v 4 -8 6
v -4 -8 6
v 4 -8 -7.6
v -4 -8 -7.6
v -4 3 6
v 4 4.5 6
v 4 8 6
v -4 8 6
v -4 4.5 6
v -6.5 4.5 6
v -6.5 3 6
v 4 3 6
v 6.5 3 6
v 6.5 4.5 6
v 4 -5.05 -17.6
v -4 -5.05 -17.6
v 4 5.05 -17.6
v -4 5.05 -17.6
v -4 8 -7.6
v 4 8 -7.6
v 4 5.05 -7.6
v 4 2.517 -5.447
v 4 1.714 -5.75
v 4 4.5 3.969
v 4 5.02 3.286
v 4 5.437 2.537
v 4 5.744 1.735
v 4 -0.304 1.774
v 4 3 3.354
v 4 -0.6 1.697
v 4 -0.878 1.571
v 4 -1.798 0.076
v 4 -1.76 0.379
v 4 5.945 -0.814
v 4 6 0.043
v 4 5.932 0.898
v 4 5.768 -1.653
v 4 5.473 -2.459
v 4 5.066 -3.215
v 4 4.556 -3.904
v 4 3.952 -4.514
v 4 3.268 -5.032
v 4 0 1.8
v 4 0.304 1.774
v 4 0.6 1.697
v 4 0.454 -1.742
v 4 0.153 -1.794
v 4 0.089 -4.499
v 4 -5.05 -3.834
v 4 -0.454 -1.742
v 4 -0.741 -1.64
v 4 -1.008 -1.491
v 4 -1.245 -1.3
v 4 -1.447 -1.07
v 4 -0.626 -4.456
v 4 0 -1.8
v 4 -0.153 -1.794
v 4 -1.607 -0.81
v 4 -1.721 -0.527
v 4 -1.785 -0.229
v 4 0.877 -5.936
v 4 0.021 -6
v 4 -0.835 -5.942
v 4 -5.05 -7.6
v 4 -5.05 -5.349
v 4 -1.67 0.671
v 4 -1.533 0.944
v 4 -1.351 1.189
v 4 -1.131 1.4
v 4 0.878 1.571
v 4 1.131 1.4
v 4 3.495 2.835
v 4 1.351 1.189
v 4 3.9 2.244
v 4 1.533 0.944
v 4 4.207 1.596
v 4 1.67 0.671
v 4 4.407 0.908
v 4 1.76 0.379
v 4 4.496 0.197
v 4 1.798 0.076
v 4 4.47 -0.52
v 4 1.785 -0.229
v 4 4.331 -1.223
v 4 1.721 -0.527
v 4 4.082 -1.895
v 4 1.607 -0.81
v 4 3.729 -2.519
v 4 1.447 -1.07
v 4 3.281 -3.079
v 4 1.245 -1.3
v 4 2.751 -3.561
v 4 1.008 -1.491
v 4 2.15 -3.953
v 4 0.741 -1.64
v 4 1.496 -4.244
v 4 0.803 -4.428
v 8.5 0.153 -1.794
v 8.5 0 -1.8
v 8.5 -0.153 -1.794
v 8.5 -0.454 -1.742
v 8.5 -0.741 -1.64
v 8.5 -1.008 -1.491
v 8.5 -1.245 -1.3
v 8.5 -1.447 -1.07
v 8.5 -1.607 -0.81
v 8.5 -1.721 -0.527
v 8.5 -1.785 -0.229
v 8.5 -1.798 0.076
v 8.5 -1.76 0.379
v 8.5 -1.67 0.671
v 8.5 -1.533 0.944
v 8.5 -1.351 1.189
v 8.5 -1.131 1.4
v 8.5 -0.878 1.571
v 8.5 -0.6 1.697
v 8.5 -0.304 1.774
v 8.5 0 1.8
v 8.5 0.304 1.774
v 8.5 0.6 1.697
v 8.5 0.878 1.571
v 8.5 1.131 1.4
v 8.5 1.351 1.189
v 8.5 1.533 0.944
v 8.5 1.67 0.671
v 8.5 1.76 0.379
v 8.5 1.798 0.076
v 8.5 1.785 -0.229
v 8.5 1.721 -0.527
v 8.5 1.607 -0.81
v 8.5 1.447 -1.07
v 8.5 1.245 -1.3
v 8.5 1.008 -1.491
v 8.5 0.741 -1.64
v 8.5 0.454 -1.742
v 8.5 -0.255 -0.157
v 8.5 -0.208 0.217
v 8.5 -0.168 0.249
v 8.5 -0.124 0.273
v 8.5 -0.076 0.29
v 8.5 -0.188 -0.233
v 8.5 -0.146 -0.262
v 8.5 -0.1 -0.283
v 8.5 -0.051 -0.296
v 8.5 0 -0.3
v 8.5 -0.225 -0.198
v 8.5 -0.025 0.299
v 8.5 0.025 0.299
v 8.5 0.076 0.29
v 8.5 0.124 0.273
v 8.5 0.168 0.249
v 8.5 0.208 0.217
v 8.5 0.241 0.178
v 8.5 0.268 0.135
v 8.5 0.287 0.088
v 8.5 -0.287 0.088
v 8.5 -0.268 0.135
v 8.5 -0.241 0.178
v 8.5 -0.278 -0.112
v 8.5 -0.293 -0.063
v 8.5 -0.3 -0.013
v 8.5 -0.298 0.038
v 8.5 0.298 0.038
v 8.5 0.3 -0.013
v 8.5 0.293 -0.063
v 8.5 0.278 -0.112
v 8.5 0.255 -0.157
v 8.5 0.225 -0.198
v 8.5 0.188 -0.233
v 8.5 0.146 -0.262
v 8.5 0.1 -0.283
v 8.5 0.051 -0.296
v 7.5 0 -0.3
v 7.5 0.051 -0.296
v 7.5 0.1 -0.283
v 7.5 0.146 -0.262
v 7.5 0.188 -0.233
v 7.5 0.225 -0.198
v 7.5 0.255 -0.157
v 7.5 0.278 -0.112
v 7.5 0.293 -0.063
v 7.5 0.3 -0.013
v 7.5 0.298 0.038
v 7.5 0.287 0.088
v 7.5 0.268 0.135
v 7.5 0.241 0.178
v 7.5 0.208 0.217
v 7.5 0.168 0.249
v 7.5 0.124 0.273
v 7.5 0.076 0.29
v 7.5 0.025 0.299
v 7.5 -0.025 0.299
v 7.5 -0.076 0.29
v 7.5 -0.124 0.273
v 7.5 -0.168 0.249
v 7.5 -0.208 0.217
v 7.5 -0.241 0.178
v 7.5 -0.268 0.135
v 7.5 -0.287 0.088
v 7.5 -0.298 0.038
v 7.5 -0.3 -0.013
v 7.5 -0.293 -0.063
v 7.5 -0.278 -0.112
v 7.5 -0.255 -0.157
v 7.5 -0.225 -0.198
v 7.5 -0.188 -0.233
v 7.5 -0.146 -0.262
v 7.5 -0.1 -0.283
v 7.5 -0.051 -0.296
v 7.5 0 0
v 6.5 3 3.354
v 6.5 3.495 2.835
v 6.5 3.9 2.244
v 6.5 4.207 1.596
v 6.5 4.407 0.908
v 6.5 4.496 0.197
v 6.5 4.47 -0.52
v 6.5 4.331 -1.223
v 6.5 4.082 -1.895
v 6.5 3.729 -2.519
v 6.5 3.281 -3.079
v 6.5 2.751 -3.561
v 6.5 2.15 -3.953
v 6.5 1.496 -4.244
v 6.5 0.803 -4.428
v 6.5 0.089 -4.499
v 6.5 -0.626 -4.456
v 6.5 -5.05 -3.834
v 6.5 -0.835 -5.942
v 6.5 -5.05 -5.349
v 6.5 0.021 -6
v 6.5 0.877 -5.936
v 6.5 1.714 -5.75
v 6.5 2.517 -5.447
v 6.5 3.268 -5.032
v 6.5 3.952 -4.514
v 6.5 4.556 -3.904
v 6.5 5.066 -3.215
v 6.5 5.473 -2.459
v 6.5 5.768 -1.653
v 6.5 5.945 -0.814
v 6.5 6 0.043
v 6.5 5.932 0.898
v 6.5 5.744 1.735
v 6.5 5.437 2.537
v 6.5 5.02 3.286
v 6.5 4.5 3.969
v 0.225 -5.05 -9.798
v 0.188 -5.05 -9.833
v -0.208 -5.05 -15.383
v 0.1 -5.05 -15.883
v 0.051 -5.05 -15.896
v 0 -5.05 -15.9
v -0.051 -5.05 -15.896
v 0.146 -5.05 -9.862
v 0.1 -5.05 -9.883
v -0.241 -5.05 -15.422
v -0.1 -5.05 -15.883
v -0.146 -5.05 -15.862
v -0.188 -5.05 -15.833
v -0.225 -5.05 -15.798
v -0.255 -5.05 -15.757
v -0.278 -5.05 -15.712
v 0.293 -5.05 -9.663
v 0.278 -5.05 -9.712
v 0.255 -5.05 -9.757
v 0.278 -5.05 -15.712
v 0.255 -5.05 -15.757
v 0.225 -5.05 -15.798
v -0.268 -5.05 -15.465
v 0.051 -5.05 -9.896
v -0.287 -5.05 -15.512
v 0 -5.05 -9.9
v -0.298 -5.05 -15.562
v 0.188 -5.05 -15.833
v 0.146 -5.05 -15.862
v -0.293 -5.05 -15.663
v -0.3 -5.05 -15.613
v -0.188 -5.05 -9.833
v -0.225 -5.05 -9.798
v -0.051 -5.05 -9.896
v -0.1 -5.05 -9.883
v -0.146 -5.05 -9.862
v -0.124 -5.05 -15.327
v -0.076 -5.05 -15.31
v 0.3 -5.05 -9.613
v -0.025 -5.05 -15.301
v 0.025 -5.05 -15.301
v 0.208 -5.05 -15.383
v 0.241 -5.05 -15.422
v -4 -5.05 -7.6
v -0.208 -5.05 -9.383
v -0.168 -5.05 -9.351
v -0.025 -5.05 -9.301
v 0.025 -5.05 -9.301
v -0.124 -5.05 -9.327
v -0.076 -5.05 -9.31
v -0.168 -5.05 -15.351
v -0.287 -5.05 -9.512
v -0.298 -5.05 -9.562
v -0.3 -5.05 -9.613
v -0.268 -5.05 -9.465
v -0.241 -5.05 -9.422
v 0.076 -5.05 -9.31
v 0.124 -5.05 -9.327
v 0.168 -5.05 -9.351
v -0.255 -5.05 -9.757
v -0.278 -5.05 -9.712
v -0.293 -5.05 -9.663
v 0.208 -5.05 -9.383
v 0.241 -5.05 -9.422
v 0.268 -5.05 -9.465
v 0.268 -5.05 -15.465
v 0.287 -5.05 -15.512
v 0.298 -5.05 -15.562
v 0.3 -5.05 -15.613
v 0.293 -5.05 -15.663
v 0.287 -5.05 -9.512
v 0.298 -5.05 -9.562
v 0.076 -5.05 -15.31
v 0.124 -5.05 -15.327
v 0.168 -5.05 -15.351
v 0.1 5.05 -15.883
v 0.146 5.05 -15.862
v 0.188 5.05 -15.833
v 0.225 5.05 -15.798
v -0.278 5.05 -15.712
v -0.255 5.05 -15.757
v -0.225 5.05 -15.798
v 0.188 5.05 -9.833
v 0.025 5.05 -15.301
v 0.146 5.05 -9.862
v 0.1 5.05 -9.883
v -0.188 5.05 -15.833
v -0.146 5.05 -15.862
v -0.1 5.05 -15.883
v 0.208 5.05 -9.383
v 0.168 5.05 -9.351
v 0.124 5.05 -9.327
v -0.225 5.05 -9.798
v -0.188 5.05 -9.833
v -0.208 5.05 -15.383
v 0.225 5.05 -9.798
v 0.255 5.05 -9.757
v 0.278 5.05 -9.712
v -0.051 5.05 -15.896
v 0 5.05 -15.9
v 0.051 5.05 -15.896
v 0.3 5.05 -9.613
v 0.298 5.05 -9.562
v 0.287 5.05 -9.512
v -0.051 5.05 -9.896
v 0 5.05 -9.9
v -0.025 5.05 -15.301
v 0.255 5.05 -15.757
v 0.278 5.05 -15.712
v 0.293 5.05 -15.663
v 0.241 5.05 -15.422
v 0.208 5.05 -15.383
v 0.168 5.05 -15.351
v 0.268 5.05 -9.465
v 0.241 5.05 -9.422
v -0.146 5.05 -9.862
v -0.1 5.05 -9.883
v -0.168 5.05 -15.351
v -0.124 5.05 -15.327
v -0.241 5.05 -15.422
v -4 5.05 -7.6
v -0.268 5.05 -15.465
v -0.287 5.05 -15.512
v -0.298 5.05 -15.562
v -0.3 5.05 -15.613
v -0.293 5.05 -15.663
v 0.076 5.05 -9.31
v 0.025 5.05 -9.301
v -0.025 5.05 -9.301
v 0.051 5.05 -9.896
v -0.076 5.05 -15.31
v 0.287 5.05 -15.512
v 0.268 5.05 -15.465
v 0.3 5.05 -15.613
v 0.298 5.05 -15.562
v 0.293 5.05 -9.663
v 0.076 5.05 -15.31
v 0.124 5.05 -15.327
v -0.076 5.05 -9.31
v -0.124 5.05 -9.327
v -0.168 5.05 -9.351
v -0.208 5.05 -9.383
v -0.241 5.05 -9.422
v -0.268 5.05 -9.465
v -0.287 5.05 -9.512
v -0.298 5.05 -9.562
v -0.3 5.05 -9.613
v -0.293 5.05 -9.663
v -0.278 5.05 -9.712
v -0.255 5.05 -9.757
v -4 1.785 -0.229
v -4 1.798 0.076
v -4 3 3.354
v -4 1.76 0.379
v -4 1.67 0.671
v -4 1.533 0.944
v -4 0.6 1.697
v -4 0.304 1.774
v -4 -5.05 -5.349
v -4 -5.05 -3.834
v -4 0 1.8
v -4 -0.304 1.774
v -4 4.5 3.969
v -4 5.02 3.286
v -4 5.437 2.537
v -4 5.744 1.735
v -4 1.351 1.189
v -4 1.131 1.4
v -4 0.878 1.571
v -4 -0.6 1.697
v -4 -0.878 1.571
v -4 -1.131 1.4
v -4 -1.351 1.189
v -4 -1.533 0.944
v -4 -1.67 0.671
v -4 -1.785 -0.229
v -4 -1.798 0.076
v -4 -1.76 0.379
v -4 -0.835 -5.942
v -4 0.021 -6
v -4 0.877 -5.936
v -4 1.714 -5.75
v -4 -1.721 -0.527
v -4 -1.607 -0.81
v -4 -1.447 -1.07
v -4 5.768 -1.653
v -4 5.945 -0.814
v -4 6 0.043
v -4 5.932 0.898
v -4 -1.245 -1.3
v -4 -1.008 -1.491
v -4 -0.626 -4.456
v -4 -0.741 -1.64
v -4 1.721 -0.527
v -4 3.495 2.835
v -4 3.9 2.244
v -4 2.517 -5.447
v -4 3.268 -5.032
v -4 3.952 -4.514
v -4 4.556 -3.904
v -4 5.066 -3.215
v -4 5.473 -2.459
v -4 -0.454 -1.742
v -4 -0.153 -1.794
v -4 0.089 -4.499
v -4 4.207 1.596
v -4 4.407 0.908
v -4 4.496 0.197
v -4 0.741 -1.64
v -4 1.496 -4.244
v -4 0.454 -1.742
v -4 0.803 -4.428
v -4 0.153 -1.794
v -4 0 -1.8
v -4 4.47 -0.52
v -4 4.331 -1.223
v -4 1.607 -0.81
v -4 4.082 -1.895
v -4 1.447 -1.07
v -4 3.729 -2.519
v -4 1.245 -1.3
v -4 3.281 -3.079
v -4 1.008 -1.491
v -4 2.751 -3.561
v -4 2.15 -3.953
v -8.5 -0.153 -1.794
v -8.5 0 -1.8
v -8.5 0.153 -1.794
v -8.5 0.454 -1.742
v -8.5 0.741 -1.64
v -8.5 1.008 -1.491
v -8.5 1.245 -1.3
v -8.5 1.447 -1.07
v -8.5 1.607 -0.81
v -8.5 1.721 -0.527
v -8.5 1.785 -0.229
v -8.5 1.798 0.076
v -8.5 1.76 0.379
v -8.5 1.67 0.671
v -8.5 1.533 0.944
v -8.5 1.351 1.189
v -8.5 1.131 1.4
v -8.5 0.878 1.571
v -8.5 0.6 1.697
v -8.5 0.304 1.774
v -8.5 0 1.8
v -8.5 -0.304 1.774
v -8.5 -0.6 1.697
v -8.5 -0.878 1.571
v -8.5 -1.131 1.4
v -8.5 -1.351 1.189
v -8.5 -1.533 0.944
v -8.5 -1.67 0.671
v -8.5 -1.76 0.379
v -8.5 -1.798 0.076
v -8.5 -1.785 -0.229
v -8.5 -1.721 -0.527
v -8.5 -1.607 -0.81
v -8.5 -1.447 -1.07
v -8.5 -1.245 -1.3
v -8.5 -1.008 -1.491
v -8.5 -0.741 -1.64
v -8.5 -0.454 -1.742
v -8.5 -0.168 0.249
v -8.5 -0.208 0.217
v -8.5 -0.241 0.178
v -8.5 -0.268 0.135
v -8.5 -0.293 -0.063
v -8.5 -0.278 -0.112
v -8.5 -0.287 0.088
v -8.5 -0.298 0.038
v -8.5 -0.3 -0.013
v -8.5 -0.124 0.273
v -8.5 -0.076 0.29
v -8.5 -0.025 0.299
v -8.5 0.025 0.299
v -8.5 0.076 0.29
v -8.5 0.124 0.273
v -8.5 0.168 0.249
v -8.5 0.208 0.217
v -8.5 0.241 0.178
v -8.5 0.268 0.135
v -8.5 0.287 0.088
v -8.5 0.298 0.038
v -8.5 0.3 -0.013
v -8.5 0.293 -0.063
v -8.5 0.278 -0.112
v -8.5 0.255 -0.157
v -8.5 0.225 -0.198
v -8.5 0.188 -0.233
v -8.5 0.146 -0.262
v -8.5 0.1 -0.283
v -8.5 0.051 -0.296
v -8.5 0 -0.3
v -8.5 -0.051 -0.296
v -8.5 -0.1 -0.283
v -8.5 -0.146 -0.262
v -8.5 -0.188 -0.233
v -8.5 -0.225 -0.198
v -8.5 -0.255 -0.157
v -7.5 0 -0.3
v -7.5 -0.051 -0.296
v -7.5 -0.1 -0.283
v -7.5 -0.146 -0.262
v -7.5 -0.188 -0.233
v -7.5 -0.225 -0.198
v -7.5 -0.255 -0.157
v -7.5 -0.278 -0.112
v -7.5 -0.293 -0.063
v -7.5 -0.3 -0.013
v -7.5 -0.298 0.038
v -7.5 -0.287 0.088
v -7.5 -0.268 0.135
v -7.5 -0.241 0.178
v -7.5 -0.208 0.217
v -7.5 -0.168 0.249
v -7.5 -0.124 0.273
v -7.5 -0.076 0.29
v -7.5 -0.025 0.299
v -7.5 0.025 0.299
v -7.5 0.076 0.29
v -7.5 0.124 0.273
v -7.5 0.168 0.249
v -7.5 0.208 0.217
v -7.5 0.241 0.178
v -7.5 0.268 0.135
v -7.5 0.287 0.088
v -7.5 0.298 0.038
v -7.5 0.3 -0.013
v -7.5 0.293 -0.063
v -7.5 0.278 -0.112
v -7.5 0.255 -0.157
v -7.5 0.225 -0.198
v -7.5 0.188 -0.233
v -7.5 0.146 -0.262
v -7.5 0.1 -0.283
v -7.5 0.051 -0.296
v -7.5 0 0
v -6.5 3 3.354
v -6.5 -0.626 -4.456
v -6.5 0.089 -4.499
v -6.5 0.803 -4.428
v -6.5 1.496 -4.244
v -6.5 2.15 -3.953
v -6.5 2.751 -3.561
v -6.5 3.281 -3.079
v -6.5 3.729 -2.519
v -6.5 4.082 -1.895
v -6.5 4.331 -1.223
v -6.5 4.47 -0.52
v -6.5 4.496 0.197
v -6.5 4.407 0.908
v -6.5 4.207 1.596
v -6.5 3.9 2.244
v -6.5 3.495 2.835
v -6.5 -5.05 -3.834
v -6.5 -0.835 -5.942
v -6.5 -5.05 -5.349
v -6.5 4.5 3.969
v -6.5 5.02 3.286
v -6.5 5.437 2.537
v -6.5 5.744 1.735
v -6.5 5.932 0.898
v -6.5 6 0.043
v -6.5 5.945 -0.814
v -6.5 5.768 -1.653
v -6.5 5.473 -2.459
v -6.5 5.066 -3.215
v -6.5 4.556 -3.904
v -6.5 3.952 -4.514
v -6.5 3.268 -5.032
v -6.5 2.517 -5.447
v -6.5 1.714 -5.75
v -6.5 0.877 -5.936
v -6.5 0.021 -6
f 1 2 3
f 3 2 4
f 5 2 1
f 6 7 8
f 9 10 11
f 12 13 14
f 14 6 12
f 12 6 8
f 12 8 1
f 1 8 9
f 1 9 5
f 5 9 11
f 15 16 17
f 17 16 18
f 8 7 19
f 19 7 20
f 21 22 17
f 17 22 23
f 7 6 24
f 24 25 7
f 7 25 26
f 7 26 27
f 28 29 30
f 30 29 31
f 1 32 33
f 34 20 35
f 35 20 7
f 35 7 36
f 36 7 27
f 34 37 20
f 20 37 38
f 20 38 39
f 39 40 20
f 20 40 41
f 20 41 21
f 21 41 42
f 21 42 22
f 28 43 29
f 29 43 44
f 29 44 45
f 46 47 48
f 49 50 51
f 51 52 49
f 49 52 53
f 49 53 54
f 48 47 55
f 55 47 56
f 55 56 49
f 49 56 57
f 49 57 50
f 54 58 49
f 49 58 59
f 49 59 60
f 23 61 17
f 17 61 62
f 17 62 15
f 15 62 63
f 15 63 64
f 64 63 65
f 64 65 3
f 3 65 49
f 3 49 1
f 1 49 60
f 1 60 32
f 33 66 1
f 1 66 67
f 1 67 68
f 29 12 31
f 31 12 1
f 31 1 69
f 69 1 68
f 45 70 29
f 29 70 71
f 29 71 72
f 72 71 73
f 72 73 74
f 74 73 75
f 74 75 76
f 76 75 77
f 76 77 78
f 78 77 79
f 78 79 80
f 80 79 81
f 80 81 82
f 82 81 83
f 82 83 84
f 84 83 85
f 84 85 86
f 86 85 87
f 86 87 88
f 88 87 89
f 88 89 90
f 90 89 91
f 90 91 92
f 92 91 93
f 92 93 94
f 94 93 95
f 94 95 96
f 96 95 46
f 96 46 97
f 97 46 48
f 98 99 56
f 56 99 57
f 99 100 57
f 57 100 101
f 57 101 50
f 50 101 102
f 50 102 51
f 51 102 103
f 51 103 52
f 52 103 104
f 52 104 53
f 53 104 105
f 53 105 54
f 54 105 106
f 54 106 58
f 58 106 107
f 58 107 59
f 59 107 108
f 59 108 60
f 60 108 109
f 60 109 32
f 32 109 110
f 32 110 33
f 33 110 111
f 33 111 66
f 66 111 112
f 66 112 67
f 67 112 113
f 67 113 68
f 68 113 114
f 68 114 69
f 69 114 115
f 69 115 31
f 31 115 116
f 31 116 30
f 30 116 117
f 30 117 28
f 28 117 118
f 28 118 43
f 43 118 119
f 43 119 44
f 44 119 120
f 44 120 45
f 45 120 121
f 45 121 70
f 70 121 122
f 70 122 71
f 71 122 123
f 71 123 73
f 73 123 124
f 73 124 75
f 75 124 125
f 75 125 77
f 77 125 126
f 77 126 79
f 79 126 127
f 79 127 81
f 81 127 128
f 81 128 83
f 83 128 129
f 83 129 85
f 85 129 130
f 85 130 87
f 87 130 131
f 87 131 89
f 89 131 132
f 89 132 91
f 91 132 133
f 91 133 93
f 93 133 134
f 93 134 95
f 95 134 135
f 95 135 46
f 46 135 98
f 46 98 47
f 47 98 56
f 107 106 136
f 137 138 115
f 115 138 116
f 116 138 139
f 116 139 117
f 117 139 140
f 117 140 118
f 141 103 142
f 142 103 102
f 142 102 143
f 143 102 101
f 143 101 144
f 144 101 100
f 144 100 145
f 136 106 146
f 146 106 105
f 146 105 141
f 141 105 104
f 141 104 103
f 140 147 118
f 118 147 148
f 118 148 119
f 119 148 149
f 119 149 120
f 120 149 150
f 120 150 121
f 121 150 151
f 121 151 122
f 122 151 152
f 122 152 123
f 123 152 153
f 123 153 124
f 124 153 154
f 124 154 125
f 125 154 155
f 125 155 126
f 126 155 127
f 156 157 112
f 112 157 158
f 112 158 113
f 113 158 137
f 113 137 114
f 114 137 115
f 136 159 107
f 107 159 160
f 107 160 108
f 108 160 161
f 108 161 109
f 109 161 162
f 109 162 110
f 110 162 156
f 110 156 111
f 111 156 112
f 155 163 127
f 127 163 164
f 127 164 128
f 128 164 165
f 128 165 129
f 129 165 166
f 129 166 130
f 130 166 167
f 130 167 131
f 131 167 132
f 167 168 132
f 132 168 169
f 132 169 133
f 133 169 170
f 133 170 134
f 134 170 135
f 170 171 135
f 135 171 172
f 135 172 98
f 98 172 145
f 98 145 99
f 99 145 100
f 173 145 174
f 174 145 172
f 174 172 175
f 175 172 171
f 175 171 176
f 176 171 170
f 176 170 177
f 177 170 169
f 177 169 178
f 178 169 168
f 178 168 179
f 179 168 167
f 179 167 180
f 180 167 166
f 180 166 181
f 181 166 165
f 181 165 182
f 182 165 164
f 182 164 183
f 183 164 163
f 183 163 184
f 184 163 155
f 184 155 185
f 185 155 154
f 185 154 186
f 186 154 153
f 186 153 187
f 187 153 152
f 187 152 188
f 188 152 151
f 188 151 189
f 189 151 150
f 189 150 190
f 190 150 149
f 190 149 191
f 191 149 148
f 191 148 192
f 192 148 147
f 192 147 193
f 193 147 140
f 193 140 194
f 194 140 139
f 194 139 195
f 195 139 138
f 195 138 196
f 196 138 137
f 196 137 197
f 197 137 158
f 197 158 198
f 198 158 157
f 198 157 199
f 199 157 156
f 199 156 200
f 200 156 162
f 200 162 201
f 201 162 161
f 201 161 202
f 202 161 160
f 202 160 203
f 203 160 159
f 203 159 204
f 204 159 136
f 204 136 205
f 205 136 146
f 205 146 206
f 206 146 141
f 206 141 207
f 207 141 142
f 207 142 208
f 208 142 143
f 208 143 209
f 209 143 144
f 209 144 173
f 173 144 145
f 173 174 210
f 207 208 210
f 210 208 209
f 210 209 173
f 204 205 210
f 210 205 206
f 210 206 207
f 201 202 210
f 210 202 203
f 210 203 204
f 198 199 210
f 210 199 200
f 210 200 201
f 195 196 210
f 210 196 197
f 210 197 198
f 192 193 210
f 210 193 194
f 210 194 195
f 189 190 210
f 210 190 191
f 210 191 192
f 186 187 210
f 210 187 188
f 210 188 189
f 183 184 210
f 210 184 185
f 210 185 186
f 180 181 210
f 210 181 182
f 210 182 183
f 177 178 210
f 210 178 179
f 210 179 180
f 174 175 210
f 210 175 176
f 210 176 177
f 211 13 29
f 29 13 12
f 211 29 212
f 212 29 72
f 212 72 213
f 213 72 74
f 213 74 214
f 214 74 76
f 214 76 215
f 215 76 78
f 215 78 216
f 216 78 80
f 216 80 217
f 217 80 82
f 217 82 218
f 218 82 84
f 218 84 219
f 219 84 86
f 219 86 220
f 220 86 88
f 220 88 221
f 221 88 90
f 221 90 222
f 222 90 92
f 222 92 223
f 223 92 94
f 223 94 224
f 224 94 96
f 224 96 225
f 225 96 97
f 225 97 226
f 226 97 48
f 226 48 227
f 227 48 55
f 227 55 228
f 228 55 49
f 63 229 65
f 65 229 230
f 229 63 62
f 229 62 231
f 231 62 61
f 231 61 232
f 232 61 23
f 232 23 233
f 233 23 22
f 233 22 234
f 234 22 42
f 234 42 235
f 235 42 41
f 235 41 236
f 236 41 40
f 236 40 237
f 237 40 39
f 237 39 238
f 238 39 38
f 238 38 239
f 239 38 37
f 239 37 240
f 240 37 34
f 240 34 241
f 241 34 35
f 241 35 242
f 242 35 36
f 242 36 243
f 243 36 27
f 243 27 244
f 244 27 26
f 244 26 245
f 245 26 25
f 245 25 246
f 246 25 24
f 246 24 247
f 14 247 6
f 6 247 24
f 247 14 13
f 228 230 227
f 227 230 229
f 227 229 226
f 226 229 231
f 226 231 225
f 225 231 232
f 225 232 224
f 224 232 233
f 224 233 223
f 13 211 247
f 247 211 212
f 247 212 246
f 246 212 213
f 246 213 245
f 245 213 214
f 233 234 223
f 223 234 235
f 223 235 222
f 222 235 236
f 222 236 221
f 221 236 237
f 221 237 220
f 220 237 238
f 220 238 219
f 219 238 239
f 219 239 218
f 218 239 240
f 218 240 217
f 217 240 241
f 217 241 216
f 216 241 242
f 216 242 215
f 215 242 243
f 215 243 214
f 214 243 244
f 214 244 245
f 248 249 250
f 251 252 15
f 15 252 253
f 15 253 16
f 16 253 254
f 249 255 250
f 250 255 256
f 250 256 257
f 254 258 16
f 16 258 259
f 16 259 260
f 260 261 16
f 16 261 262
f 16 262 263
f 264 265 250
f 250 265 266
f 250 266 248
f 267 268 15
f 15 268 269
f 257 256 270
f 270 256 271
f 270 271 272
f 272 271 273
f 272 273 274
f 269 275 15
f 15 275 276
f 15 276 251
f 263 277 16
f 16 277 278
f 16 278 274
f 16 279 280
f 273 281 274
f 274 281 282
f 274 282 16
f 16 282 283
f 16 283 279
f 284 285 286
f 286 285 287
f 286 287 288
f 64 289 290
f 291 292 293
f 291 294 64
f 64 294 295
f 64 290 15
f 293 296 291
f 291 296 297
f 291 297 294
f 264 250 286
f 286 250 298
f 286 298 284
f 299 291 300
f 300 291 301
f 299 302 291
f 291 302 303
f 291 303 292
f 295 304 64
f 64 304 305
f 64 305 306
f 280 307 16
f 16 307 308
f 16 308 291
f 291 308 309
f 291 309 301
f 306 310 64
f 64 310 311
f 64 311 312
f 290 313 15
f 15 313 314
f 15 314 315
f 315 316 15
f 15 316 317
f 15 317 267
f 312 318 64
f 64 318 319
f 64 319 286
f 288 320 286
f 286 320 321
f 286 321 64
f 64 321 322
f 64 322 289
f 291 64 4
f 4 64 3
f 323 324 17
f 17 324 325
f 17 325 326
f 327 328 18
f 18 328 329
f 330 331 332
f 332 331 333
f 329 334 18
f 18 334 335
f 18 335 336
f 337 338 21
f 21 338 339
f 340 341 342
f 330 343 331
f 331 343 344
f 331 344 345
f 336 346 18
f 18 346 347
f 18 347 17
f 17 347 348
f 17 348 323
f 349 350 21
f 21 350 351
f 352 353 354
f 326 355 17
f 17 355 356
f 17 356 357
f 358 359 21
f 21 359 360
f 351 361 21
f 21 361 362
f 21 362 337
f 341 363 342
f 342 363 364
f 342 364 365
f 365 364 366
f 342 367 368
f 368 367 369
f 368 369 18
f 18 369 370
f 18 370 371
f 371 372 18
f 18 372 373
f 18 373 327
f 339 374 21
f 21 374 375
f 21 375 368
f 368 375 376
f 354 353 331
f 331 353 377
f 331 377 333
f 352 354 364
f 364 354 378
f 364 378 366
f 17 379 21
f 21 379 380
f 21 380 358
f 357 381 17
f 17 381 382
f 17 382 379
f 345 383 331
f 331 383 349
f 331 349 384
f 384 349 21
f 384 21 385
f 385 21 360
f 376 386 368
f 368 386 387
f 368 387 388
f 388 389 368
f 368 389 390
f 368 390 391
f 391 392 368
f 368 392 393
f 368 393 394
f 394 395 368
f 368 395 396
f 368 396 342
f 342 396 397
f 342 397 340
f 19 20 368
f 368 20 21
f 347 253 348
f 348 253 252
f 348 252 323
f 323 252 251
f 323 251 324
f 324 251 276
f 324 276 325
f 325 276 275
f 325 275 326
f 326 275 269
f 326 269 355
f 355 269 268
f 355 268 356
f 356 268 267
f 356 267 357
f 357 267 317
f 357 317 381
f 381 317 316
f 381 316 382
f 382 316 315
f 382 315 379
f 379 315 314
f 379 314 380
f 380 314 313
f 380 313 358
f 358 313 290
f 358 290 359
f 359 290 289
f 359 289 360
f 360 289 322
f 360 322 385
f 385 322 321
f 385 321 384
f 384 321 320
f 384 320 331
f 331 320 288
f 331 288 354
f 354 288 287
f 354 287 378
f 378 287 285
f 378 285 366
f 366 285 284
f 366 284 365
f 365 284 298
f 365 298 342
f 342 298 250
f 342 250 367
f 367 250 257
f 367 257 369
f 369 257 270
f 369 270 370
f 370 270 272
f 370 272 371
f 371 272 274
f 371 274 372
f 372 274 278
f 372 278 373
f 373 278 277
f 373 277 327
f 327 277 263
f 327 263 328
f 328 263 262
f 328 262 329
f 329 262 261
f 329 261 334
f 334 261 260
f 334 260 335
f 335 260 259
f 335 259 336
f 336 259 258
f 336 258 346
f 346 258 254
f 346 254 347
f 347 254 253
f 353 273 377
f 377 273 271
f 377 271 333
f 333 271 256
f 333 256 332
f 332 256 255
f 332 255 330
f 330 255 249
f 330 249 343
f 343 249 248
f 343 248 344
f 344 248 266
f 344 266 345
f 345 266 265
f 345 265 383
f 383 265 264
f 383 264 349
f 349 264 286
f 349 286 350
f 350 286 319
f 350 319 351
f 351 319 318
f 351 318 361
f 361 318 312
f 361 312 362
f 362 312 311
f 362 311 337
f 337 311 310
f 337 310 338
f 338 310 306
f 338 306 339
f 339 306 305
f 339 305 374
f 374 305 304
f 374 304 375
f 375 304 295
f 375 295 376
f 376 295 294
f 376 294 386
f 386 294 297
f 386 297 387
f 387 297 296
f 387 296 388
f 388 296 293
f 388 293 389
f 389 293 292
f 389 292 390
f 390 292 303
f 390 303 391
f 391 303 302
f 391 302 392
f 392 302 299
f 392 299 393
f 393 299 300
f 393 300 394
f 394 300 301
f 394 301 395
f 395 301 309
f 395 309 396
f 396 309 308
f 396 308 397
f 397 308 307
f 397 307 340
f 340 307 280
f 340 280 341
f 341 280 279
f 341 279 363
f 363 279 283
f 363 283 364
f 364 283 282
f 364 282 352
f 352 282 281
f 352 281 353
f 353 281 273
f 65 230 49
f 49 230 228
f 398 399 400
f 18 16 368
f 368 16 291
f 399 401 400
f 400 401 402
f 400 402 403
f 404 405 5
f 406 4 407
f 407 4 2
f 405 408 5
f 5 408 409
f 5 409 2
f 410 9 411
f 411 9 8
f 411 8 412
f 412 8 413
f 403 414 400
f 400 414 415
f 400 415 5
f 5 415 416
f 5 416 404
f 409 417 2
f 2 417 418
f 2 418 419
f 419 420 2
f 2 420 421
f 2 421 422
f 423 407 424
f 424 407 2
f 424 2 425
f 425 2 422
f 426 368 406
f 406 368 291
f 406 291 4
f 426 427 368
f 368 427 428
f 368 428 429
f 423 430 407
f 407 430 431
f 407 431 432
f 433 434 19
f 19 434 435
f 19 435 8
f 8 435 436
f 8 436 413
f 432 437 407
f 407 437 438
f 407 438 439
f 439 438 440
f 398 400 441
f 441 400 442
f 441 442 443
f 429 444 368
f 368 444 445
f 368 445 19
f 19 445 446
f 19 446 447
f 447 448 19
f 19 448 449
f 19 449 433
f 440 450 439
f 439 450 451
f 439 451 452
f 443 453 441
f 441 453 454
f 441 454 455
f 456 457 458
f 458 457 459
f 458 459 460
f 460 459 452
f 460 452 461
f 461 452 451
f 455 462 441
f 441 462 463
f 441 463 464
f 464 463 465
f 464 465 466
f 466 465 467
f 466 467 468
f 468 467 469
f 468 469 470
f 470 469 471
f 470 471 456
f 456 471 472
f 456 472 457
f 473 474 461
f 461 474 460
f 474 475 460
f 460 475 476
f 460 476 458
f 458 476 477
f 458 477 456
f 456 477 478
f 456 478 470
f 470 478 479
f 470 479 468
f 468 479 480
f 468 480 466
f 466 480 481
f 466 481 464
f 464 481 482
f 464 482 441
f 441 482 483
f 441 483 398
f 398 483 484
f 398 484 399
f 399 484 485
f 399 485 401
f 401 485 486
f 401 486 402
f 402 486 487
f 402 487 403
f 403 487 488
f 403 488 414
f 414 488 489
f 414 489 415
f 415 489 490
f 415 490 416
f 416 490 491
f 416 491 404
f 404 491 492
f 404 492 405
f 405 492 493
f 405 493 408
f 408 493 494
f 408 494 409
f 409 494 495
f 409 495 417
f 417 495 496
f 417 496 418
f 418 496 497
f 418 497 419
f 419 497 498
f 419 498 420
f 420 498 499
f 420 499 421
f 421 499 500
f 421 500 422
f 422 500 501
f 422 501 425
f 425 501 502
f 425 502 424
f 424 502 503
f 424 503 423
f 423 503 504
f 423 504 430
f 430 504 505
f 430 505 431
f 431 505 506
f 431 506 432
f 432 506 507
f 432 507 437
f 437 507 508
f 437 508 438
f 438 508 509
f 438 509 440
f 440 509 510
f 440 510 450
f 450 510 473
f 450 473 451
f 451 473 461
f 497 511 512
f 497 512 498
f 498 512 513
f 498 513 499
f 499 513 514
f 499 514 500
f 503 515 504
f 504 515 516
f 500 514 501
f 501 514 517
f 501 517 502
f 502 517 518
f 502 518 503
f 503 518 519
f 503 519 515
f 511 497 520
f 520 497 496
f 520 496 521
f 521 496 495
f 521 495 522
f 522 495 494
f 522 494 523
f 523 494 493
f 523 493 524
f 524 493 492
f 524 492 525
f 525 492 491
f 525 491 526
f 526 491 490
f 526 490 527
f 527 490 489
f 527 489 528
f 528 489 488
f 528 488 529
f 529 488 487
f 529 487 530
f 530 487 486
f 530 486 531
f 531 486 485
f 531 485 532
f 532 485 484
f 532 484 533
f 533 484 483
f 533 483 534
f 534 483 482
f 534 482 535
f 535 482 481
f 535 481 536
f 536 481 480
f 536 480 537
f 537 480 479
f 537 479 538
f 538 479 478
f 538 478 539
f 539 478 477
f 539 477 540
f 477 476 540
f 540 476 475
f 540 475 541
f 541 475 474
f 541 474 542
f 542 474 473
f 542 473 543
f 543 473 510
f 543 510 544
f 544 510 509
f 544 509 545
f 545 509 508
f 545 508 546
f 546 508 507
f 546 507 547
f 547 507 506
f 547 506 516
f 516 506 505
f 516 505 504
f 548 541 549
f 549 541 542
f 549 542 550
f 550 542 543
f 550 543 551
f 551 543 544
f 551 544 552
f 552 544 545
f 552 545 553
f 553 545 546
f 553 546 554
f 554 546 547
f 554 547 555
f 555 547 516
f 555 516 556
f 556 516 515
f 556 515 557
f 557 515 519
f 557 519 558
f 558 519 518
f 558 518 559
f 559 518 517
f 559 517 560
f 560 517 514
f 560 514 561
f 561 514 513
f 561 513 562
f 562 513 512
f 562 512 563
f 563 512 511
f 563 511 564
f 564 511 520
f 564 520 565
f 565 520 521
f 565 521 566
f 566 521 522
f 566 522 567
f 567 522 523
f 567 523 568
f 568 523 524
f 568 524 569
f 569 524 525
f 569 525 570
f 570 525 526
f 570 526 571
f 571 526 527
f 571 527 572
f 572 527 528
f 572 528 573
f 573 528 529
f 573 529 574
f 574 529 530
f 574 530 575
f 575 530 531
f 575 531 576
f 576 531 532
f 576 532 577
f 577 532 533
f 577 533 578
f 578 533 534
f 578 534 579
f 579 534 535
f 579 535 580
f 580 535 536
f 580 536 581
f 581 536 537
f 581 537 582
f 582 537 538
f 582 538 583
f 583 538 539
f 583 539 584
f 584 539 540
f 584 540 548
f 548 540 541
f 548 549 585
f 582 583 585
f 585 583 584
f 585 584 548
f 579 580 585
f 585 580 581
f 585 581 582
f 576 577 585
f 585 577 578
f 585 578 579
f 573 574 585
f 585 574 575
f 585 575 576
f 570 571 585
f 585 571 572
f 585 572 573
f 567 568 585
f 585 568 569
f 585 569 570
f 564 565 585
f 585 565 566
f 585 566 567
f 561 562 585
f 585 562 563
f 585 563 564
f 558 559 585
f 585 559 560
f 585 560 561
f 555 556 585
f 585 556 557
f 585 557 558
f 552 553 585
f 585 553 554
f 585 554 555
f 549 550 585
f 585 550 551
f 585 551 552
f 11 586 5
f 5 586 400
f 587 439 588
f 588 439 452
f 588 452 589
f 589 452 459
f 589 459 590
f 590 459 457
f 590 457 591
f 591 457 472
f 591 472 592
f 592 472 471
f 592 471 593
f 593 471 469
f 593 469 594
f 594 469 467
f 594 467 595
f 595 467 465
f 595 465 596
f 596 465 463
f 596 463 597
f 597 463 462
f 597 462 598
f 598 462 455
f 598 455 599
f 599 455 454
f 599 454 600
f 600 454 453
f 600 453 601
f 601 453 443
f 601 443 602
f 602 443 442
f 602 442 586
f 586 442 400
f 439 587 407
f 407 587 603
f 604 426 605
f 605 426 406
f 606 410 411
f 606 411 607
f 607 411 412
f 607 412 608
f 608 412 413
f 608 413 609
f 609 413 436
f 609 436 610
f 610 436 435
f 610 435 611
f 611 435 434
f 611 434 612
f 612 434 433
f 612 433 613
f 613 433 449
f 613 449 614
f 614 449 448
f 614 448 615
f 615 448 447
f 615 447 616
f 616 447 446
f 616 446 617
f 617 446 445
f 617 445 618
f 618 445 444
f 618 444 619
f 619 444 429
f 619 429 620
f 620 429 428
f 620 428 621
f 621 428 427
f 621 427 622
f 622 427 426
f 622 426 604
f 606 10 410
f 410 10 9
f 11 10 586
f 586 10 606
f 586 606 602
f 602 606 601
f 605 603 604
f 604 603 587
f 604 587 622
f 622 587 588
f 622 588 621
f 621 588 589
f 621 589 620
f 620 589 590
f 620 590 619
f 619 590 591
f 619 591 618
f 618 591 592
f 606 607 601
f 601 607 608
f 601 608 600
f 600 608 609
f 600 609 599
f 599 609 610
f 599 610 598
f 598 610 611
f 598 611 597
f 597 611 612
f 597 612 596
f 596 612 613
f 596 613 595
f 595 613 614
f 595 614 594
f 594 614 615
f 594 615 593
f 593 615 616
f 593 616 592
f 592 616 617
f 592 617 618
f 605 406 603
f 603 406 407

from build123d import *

# Parameters (mm, degrees)
SKETCH_2_W           = 23.6
SKETCH_2_H           = 16
EXTRUDE_1_DEPTH      = 4
EXTRUDE_START        = 4
EXTRUDE_3_DEPTH      = 4.5
SKETCH_5_R           = 0.3
CUT_EXTRUDE_10_DEPTH = 1
EXTRUDE_2_DEPTH      = 2.5
SKETCH_6_W           = 4
SKETCH_6_H           = 2.95
CUT_EXTRUDE_11_DEPTH = 10
SKETCH_7_R           = 0.3
CUT_EXTRUDE_12_DEPTH = 24.50132975
SKETCH_8_W           = 13.6
SKETCH_8_H           = 2.95
CUT_EXTRUDE_13_DEPTH = 2.5


with BuildPart() as part:
    # 草图2 → 凸台-拉伸1 (new body)
    with BuildSketch(Plane(origin=(0, 0, 0), x_dir=(0, 0, -1), z_dir=(1, 0, 0))):
        with Locations((5.8, 0)):
            Rectangle(SKETCH_2_W, SKETCH_2_H)
    extrude(amount=EXTRUDE_1_DEPTH)

    # 草图2<10> → 凸台-拉伸3 (add)
    with BuildSketch(Plane(origin=(0, 0, 0), x_dir=(0, 0, -1), z_dir=(1, 0, 0)).offset(EXTRUDE_START)):
        with BuildLine():
            ThreePointArc((0, -1.8), (1.272792206, -1.272792206), (1.8, 0))
            Line((1.8, 0), (0, 0))
            Line((0, 0), (0, -1.8))
        make_face()
        with BuildLine():
            Line((0, 0), (1.8, 0))
            ThreePointArc((1.8, 0), (1.272792206, 1.272792206), (0, 1.8))
            Line((0, 1.8), (0, 0))
        make_face()
        with BuildLine():
            Line((0, -1.8), (0, 0))
            Line((0, 0), (-1.8, 0))
            ThreePointArc((-1.8, 0), (-1.272792206, -1.272792206), (0, -1.8))
        make_face()
        with BuildLine():
            Line((-1.8, 0), (0, 0))
            Line((0, 0), (0, 1.8))
            ThreePointArc((0, 1.8), (-1.272792206, 1.272792206), (-1.8, 0))
        make_face()
    extrude(amount=EXTRUDE_3_DEPTH)

    # 草图5 → 切除-拉伸10 (cut)
    with BuildSketch(Plane(origin=(8.5, 0, 0), x_dir=(0, 0, -1), z_dir=(1, 0, 0))):
        Circle(SKETCH_5_R)
    extrude(amount=-CUT_EXTRUDE_10_DEPTH, mode=Mode.SUBTRACT)

    # 草图2<4> → 凸台-拉伸2 (add)
    with BuildSketch(Plane(origin=(0, 0, 0), x_dir=(0, 0, -1), z_dir=(1, 0, 0)).offset(EXTRUDE_START)):
        with BuildLine():
            ThreePointArc((-3.354101966, 3), (-1.837117307, 4.107919181), (0, 4.5))
            Line((0, 4.5), (-3.968626967, 4.5))
            ThreePointArc((-3.968626967, 4.5), (-4.643360347, 3.799895352), (-5.196152423, 3))
            Line((-5.196152423, 3), (-3.354101966, 3))
        make_face()
        with BuildLine():
            Line((0, 5), (1.8, 5))
            Line((1.8, 5), (1.8, 5.723635209))
            ThreePointArc((1.8, 5.723635209), (-1.245012655, 5.869407422), (-3.968626967, 4.5))
            Line((-3.968626967, 4.5), (0, 4.5))
            Line((0, 4.5), (0, 5))
        make_face()
        with BuildLine():
            ThreePointArc((0, 4.5), (0.919393397, 4.405078408), (1.8, 4.124318125))
            Line((1.8, 4.124318125), (1.8, 5))
            Line((1.8, 5), (0, 5))
            Line((0, 5), (0, 4.5))
        make_face()
        with BuildLine():
            ThreePointArc((1.8, 4.124318125), (3.764970119, 2.464751509), (4.5, 0))
            Line((4.5, 0), (6, 0))
            ThreePointArc((6, 0), (5.286764074, 2.837274331), (3.31662479, 5))
            Line((3.31662479, 5), (1.8, 5))
            Line((1.8, 5), (1.8, 4.124318125))
        make_face()
        with BuildLine():
            Line((1.8, 5.723635209), (1.8, 5))
            Line((1.8, 5), (3.31662479, 5))
            ThreePointArc((3.31662479, 5), (2.583771331, 5.415175501), (1.8, 5.723635209))
        make_face()
        with BuildLine():
            Line((6, 0), (4.5, 0))
            ThreePointArc((4.5, 0), (4.489038226, -0.313904132), (4.456206309, -0.626278954))
            Line((4.456206309, -0.626278954), (3.903880188, -4.556283516))
            ThreePointArc((3.903880188, -4.556283516), (5.262635021, -2.881782892), (5.941608412, -0.835038606))
            ThreePointArc((5.941608412, -0.835038606), (5.985384302, -0.418538842), (6, 0))
        make_face()
        with BuildLine():
            Line((5.356261262, -5), (5.941608412, -0.835038606))
            ThreePointArc((5.941608412, -0.835038606), (5.262635021, -2.881782892), (3.903880188, -4.556283516))
            Line((3.903880188, -4.556283516), (3.841519903, -5))
            Line((3.841519903, -5), (5.356261262, -5))
        make_face()
        Polygon((4.934638757, -8), (5.356261262, -5), (3.841519903, -5), (3.419897399, -8), align=None)
        with BuildLine():
            ThreePointArc((-5.196152423, 3), (-4.643360347, 3.799895352), (-3.968626967, 4.5))
            Line((-3.968626967, 4.5), (-6, 4.5))
            Line((-6, 4.5), (-6, 3))
            Line((-6, 3), (-5.196152423, 3))
        make_face()
    extrude(amount=EXTRUDE_2_DEPTH)

    # 草图6 → 切除-拉伸11 (cut)
    with BuildSketch(Plane(origin=(0, 0, -17.6), x_dir=(-1, 0, 0), z_dir=(0, 0, -1))):
        with Locations((-2, 6.525)):
            Rectangle(SKETCH_6_W, SKETCH_6_H)
        with Locations((-2, -6.525)):
            Rectangle(SKETCH_6_W, SKETCH_6_H)
    extrude(amount=-CUT_EXTRUDE_11_DEPTH, mode=Mode.SUBTRACT)

    # 草图7 → 切除-拉伸12 (cut, through all)
    with BuildSketch(Plane.XZ.offset(5.05)):
        with Locations((0, -9.6)):
            Circle(SKETCH_7_R)
        with Locations((0, -15.6)):
            Circle(SKETCH_7_R)
    extrude(amount=-CUT_EXTRUDE_12_DEPTH, mode=Mode.SUBTRACT)

    # 草图8 → 切除-拉伸13 (cut)
    with BuildSketch(Plane(origin=(6.5, 0, 0), x_dir=(0, 0, -1), z_dir=(1, 0, 0))):
        with Locations((0.8, -6.525)):
            Rectangle(SKETCH_8_W, SKETCH_8_H)
    extrude(amount=-CUT_EXTRUDE_13_DEPTH, mode=Mode.SUBTRACT)

    # 镜向1: part across plane


with BuildPart() as part_1:
    add(part.part)
    add(part.part.mirror(Plane(origin=(0, 0, 0), x_dir=(0, 0, 1), z_dir=(1, 0, 0))))


solid = part_1.part
